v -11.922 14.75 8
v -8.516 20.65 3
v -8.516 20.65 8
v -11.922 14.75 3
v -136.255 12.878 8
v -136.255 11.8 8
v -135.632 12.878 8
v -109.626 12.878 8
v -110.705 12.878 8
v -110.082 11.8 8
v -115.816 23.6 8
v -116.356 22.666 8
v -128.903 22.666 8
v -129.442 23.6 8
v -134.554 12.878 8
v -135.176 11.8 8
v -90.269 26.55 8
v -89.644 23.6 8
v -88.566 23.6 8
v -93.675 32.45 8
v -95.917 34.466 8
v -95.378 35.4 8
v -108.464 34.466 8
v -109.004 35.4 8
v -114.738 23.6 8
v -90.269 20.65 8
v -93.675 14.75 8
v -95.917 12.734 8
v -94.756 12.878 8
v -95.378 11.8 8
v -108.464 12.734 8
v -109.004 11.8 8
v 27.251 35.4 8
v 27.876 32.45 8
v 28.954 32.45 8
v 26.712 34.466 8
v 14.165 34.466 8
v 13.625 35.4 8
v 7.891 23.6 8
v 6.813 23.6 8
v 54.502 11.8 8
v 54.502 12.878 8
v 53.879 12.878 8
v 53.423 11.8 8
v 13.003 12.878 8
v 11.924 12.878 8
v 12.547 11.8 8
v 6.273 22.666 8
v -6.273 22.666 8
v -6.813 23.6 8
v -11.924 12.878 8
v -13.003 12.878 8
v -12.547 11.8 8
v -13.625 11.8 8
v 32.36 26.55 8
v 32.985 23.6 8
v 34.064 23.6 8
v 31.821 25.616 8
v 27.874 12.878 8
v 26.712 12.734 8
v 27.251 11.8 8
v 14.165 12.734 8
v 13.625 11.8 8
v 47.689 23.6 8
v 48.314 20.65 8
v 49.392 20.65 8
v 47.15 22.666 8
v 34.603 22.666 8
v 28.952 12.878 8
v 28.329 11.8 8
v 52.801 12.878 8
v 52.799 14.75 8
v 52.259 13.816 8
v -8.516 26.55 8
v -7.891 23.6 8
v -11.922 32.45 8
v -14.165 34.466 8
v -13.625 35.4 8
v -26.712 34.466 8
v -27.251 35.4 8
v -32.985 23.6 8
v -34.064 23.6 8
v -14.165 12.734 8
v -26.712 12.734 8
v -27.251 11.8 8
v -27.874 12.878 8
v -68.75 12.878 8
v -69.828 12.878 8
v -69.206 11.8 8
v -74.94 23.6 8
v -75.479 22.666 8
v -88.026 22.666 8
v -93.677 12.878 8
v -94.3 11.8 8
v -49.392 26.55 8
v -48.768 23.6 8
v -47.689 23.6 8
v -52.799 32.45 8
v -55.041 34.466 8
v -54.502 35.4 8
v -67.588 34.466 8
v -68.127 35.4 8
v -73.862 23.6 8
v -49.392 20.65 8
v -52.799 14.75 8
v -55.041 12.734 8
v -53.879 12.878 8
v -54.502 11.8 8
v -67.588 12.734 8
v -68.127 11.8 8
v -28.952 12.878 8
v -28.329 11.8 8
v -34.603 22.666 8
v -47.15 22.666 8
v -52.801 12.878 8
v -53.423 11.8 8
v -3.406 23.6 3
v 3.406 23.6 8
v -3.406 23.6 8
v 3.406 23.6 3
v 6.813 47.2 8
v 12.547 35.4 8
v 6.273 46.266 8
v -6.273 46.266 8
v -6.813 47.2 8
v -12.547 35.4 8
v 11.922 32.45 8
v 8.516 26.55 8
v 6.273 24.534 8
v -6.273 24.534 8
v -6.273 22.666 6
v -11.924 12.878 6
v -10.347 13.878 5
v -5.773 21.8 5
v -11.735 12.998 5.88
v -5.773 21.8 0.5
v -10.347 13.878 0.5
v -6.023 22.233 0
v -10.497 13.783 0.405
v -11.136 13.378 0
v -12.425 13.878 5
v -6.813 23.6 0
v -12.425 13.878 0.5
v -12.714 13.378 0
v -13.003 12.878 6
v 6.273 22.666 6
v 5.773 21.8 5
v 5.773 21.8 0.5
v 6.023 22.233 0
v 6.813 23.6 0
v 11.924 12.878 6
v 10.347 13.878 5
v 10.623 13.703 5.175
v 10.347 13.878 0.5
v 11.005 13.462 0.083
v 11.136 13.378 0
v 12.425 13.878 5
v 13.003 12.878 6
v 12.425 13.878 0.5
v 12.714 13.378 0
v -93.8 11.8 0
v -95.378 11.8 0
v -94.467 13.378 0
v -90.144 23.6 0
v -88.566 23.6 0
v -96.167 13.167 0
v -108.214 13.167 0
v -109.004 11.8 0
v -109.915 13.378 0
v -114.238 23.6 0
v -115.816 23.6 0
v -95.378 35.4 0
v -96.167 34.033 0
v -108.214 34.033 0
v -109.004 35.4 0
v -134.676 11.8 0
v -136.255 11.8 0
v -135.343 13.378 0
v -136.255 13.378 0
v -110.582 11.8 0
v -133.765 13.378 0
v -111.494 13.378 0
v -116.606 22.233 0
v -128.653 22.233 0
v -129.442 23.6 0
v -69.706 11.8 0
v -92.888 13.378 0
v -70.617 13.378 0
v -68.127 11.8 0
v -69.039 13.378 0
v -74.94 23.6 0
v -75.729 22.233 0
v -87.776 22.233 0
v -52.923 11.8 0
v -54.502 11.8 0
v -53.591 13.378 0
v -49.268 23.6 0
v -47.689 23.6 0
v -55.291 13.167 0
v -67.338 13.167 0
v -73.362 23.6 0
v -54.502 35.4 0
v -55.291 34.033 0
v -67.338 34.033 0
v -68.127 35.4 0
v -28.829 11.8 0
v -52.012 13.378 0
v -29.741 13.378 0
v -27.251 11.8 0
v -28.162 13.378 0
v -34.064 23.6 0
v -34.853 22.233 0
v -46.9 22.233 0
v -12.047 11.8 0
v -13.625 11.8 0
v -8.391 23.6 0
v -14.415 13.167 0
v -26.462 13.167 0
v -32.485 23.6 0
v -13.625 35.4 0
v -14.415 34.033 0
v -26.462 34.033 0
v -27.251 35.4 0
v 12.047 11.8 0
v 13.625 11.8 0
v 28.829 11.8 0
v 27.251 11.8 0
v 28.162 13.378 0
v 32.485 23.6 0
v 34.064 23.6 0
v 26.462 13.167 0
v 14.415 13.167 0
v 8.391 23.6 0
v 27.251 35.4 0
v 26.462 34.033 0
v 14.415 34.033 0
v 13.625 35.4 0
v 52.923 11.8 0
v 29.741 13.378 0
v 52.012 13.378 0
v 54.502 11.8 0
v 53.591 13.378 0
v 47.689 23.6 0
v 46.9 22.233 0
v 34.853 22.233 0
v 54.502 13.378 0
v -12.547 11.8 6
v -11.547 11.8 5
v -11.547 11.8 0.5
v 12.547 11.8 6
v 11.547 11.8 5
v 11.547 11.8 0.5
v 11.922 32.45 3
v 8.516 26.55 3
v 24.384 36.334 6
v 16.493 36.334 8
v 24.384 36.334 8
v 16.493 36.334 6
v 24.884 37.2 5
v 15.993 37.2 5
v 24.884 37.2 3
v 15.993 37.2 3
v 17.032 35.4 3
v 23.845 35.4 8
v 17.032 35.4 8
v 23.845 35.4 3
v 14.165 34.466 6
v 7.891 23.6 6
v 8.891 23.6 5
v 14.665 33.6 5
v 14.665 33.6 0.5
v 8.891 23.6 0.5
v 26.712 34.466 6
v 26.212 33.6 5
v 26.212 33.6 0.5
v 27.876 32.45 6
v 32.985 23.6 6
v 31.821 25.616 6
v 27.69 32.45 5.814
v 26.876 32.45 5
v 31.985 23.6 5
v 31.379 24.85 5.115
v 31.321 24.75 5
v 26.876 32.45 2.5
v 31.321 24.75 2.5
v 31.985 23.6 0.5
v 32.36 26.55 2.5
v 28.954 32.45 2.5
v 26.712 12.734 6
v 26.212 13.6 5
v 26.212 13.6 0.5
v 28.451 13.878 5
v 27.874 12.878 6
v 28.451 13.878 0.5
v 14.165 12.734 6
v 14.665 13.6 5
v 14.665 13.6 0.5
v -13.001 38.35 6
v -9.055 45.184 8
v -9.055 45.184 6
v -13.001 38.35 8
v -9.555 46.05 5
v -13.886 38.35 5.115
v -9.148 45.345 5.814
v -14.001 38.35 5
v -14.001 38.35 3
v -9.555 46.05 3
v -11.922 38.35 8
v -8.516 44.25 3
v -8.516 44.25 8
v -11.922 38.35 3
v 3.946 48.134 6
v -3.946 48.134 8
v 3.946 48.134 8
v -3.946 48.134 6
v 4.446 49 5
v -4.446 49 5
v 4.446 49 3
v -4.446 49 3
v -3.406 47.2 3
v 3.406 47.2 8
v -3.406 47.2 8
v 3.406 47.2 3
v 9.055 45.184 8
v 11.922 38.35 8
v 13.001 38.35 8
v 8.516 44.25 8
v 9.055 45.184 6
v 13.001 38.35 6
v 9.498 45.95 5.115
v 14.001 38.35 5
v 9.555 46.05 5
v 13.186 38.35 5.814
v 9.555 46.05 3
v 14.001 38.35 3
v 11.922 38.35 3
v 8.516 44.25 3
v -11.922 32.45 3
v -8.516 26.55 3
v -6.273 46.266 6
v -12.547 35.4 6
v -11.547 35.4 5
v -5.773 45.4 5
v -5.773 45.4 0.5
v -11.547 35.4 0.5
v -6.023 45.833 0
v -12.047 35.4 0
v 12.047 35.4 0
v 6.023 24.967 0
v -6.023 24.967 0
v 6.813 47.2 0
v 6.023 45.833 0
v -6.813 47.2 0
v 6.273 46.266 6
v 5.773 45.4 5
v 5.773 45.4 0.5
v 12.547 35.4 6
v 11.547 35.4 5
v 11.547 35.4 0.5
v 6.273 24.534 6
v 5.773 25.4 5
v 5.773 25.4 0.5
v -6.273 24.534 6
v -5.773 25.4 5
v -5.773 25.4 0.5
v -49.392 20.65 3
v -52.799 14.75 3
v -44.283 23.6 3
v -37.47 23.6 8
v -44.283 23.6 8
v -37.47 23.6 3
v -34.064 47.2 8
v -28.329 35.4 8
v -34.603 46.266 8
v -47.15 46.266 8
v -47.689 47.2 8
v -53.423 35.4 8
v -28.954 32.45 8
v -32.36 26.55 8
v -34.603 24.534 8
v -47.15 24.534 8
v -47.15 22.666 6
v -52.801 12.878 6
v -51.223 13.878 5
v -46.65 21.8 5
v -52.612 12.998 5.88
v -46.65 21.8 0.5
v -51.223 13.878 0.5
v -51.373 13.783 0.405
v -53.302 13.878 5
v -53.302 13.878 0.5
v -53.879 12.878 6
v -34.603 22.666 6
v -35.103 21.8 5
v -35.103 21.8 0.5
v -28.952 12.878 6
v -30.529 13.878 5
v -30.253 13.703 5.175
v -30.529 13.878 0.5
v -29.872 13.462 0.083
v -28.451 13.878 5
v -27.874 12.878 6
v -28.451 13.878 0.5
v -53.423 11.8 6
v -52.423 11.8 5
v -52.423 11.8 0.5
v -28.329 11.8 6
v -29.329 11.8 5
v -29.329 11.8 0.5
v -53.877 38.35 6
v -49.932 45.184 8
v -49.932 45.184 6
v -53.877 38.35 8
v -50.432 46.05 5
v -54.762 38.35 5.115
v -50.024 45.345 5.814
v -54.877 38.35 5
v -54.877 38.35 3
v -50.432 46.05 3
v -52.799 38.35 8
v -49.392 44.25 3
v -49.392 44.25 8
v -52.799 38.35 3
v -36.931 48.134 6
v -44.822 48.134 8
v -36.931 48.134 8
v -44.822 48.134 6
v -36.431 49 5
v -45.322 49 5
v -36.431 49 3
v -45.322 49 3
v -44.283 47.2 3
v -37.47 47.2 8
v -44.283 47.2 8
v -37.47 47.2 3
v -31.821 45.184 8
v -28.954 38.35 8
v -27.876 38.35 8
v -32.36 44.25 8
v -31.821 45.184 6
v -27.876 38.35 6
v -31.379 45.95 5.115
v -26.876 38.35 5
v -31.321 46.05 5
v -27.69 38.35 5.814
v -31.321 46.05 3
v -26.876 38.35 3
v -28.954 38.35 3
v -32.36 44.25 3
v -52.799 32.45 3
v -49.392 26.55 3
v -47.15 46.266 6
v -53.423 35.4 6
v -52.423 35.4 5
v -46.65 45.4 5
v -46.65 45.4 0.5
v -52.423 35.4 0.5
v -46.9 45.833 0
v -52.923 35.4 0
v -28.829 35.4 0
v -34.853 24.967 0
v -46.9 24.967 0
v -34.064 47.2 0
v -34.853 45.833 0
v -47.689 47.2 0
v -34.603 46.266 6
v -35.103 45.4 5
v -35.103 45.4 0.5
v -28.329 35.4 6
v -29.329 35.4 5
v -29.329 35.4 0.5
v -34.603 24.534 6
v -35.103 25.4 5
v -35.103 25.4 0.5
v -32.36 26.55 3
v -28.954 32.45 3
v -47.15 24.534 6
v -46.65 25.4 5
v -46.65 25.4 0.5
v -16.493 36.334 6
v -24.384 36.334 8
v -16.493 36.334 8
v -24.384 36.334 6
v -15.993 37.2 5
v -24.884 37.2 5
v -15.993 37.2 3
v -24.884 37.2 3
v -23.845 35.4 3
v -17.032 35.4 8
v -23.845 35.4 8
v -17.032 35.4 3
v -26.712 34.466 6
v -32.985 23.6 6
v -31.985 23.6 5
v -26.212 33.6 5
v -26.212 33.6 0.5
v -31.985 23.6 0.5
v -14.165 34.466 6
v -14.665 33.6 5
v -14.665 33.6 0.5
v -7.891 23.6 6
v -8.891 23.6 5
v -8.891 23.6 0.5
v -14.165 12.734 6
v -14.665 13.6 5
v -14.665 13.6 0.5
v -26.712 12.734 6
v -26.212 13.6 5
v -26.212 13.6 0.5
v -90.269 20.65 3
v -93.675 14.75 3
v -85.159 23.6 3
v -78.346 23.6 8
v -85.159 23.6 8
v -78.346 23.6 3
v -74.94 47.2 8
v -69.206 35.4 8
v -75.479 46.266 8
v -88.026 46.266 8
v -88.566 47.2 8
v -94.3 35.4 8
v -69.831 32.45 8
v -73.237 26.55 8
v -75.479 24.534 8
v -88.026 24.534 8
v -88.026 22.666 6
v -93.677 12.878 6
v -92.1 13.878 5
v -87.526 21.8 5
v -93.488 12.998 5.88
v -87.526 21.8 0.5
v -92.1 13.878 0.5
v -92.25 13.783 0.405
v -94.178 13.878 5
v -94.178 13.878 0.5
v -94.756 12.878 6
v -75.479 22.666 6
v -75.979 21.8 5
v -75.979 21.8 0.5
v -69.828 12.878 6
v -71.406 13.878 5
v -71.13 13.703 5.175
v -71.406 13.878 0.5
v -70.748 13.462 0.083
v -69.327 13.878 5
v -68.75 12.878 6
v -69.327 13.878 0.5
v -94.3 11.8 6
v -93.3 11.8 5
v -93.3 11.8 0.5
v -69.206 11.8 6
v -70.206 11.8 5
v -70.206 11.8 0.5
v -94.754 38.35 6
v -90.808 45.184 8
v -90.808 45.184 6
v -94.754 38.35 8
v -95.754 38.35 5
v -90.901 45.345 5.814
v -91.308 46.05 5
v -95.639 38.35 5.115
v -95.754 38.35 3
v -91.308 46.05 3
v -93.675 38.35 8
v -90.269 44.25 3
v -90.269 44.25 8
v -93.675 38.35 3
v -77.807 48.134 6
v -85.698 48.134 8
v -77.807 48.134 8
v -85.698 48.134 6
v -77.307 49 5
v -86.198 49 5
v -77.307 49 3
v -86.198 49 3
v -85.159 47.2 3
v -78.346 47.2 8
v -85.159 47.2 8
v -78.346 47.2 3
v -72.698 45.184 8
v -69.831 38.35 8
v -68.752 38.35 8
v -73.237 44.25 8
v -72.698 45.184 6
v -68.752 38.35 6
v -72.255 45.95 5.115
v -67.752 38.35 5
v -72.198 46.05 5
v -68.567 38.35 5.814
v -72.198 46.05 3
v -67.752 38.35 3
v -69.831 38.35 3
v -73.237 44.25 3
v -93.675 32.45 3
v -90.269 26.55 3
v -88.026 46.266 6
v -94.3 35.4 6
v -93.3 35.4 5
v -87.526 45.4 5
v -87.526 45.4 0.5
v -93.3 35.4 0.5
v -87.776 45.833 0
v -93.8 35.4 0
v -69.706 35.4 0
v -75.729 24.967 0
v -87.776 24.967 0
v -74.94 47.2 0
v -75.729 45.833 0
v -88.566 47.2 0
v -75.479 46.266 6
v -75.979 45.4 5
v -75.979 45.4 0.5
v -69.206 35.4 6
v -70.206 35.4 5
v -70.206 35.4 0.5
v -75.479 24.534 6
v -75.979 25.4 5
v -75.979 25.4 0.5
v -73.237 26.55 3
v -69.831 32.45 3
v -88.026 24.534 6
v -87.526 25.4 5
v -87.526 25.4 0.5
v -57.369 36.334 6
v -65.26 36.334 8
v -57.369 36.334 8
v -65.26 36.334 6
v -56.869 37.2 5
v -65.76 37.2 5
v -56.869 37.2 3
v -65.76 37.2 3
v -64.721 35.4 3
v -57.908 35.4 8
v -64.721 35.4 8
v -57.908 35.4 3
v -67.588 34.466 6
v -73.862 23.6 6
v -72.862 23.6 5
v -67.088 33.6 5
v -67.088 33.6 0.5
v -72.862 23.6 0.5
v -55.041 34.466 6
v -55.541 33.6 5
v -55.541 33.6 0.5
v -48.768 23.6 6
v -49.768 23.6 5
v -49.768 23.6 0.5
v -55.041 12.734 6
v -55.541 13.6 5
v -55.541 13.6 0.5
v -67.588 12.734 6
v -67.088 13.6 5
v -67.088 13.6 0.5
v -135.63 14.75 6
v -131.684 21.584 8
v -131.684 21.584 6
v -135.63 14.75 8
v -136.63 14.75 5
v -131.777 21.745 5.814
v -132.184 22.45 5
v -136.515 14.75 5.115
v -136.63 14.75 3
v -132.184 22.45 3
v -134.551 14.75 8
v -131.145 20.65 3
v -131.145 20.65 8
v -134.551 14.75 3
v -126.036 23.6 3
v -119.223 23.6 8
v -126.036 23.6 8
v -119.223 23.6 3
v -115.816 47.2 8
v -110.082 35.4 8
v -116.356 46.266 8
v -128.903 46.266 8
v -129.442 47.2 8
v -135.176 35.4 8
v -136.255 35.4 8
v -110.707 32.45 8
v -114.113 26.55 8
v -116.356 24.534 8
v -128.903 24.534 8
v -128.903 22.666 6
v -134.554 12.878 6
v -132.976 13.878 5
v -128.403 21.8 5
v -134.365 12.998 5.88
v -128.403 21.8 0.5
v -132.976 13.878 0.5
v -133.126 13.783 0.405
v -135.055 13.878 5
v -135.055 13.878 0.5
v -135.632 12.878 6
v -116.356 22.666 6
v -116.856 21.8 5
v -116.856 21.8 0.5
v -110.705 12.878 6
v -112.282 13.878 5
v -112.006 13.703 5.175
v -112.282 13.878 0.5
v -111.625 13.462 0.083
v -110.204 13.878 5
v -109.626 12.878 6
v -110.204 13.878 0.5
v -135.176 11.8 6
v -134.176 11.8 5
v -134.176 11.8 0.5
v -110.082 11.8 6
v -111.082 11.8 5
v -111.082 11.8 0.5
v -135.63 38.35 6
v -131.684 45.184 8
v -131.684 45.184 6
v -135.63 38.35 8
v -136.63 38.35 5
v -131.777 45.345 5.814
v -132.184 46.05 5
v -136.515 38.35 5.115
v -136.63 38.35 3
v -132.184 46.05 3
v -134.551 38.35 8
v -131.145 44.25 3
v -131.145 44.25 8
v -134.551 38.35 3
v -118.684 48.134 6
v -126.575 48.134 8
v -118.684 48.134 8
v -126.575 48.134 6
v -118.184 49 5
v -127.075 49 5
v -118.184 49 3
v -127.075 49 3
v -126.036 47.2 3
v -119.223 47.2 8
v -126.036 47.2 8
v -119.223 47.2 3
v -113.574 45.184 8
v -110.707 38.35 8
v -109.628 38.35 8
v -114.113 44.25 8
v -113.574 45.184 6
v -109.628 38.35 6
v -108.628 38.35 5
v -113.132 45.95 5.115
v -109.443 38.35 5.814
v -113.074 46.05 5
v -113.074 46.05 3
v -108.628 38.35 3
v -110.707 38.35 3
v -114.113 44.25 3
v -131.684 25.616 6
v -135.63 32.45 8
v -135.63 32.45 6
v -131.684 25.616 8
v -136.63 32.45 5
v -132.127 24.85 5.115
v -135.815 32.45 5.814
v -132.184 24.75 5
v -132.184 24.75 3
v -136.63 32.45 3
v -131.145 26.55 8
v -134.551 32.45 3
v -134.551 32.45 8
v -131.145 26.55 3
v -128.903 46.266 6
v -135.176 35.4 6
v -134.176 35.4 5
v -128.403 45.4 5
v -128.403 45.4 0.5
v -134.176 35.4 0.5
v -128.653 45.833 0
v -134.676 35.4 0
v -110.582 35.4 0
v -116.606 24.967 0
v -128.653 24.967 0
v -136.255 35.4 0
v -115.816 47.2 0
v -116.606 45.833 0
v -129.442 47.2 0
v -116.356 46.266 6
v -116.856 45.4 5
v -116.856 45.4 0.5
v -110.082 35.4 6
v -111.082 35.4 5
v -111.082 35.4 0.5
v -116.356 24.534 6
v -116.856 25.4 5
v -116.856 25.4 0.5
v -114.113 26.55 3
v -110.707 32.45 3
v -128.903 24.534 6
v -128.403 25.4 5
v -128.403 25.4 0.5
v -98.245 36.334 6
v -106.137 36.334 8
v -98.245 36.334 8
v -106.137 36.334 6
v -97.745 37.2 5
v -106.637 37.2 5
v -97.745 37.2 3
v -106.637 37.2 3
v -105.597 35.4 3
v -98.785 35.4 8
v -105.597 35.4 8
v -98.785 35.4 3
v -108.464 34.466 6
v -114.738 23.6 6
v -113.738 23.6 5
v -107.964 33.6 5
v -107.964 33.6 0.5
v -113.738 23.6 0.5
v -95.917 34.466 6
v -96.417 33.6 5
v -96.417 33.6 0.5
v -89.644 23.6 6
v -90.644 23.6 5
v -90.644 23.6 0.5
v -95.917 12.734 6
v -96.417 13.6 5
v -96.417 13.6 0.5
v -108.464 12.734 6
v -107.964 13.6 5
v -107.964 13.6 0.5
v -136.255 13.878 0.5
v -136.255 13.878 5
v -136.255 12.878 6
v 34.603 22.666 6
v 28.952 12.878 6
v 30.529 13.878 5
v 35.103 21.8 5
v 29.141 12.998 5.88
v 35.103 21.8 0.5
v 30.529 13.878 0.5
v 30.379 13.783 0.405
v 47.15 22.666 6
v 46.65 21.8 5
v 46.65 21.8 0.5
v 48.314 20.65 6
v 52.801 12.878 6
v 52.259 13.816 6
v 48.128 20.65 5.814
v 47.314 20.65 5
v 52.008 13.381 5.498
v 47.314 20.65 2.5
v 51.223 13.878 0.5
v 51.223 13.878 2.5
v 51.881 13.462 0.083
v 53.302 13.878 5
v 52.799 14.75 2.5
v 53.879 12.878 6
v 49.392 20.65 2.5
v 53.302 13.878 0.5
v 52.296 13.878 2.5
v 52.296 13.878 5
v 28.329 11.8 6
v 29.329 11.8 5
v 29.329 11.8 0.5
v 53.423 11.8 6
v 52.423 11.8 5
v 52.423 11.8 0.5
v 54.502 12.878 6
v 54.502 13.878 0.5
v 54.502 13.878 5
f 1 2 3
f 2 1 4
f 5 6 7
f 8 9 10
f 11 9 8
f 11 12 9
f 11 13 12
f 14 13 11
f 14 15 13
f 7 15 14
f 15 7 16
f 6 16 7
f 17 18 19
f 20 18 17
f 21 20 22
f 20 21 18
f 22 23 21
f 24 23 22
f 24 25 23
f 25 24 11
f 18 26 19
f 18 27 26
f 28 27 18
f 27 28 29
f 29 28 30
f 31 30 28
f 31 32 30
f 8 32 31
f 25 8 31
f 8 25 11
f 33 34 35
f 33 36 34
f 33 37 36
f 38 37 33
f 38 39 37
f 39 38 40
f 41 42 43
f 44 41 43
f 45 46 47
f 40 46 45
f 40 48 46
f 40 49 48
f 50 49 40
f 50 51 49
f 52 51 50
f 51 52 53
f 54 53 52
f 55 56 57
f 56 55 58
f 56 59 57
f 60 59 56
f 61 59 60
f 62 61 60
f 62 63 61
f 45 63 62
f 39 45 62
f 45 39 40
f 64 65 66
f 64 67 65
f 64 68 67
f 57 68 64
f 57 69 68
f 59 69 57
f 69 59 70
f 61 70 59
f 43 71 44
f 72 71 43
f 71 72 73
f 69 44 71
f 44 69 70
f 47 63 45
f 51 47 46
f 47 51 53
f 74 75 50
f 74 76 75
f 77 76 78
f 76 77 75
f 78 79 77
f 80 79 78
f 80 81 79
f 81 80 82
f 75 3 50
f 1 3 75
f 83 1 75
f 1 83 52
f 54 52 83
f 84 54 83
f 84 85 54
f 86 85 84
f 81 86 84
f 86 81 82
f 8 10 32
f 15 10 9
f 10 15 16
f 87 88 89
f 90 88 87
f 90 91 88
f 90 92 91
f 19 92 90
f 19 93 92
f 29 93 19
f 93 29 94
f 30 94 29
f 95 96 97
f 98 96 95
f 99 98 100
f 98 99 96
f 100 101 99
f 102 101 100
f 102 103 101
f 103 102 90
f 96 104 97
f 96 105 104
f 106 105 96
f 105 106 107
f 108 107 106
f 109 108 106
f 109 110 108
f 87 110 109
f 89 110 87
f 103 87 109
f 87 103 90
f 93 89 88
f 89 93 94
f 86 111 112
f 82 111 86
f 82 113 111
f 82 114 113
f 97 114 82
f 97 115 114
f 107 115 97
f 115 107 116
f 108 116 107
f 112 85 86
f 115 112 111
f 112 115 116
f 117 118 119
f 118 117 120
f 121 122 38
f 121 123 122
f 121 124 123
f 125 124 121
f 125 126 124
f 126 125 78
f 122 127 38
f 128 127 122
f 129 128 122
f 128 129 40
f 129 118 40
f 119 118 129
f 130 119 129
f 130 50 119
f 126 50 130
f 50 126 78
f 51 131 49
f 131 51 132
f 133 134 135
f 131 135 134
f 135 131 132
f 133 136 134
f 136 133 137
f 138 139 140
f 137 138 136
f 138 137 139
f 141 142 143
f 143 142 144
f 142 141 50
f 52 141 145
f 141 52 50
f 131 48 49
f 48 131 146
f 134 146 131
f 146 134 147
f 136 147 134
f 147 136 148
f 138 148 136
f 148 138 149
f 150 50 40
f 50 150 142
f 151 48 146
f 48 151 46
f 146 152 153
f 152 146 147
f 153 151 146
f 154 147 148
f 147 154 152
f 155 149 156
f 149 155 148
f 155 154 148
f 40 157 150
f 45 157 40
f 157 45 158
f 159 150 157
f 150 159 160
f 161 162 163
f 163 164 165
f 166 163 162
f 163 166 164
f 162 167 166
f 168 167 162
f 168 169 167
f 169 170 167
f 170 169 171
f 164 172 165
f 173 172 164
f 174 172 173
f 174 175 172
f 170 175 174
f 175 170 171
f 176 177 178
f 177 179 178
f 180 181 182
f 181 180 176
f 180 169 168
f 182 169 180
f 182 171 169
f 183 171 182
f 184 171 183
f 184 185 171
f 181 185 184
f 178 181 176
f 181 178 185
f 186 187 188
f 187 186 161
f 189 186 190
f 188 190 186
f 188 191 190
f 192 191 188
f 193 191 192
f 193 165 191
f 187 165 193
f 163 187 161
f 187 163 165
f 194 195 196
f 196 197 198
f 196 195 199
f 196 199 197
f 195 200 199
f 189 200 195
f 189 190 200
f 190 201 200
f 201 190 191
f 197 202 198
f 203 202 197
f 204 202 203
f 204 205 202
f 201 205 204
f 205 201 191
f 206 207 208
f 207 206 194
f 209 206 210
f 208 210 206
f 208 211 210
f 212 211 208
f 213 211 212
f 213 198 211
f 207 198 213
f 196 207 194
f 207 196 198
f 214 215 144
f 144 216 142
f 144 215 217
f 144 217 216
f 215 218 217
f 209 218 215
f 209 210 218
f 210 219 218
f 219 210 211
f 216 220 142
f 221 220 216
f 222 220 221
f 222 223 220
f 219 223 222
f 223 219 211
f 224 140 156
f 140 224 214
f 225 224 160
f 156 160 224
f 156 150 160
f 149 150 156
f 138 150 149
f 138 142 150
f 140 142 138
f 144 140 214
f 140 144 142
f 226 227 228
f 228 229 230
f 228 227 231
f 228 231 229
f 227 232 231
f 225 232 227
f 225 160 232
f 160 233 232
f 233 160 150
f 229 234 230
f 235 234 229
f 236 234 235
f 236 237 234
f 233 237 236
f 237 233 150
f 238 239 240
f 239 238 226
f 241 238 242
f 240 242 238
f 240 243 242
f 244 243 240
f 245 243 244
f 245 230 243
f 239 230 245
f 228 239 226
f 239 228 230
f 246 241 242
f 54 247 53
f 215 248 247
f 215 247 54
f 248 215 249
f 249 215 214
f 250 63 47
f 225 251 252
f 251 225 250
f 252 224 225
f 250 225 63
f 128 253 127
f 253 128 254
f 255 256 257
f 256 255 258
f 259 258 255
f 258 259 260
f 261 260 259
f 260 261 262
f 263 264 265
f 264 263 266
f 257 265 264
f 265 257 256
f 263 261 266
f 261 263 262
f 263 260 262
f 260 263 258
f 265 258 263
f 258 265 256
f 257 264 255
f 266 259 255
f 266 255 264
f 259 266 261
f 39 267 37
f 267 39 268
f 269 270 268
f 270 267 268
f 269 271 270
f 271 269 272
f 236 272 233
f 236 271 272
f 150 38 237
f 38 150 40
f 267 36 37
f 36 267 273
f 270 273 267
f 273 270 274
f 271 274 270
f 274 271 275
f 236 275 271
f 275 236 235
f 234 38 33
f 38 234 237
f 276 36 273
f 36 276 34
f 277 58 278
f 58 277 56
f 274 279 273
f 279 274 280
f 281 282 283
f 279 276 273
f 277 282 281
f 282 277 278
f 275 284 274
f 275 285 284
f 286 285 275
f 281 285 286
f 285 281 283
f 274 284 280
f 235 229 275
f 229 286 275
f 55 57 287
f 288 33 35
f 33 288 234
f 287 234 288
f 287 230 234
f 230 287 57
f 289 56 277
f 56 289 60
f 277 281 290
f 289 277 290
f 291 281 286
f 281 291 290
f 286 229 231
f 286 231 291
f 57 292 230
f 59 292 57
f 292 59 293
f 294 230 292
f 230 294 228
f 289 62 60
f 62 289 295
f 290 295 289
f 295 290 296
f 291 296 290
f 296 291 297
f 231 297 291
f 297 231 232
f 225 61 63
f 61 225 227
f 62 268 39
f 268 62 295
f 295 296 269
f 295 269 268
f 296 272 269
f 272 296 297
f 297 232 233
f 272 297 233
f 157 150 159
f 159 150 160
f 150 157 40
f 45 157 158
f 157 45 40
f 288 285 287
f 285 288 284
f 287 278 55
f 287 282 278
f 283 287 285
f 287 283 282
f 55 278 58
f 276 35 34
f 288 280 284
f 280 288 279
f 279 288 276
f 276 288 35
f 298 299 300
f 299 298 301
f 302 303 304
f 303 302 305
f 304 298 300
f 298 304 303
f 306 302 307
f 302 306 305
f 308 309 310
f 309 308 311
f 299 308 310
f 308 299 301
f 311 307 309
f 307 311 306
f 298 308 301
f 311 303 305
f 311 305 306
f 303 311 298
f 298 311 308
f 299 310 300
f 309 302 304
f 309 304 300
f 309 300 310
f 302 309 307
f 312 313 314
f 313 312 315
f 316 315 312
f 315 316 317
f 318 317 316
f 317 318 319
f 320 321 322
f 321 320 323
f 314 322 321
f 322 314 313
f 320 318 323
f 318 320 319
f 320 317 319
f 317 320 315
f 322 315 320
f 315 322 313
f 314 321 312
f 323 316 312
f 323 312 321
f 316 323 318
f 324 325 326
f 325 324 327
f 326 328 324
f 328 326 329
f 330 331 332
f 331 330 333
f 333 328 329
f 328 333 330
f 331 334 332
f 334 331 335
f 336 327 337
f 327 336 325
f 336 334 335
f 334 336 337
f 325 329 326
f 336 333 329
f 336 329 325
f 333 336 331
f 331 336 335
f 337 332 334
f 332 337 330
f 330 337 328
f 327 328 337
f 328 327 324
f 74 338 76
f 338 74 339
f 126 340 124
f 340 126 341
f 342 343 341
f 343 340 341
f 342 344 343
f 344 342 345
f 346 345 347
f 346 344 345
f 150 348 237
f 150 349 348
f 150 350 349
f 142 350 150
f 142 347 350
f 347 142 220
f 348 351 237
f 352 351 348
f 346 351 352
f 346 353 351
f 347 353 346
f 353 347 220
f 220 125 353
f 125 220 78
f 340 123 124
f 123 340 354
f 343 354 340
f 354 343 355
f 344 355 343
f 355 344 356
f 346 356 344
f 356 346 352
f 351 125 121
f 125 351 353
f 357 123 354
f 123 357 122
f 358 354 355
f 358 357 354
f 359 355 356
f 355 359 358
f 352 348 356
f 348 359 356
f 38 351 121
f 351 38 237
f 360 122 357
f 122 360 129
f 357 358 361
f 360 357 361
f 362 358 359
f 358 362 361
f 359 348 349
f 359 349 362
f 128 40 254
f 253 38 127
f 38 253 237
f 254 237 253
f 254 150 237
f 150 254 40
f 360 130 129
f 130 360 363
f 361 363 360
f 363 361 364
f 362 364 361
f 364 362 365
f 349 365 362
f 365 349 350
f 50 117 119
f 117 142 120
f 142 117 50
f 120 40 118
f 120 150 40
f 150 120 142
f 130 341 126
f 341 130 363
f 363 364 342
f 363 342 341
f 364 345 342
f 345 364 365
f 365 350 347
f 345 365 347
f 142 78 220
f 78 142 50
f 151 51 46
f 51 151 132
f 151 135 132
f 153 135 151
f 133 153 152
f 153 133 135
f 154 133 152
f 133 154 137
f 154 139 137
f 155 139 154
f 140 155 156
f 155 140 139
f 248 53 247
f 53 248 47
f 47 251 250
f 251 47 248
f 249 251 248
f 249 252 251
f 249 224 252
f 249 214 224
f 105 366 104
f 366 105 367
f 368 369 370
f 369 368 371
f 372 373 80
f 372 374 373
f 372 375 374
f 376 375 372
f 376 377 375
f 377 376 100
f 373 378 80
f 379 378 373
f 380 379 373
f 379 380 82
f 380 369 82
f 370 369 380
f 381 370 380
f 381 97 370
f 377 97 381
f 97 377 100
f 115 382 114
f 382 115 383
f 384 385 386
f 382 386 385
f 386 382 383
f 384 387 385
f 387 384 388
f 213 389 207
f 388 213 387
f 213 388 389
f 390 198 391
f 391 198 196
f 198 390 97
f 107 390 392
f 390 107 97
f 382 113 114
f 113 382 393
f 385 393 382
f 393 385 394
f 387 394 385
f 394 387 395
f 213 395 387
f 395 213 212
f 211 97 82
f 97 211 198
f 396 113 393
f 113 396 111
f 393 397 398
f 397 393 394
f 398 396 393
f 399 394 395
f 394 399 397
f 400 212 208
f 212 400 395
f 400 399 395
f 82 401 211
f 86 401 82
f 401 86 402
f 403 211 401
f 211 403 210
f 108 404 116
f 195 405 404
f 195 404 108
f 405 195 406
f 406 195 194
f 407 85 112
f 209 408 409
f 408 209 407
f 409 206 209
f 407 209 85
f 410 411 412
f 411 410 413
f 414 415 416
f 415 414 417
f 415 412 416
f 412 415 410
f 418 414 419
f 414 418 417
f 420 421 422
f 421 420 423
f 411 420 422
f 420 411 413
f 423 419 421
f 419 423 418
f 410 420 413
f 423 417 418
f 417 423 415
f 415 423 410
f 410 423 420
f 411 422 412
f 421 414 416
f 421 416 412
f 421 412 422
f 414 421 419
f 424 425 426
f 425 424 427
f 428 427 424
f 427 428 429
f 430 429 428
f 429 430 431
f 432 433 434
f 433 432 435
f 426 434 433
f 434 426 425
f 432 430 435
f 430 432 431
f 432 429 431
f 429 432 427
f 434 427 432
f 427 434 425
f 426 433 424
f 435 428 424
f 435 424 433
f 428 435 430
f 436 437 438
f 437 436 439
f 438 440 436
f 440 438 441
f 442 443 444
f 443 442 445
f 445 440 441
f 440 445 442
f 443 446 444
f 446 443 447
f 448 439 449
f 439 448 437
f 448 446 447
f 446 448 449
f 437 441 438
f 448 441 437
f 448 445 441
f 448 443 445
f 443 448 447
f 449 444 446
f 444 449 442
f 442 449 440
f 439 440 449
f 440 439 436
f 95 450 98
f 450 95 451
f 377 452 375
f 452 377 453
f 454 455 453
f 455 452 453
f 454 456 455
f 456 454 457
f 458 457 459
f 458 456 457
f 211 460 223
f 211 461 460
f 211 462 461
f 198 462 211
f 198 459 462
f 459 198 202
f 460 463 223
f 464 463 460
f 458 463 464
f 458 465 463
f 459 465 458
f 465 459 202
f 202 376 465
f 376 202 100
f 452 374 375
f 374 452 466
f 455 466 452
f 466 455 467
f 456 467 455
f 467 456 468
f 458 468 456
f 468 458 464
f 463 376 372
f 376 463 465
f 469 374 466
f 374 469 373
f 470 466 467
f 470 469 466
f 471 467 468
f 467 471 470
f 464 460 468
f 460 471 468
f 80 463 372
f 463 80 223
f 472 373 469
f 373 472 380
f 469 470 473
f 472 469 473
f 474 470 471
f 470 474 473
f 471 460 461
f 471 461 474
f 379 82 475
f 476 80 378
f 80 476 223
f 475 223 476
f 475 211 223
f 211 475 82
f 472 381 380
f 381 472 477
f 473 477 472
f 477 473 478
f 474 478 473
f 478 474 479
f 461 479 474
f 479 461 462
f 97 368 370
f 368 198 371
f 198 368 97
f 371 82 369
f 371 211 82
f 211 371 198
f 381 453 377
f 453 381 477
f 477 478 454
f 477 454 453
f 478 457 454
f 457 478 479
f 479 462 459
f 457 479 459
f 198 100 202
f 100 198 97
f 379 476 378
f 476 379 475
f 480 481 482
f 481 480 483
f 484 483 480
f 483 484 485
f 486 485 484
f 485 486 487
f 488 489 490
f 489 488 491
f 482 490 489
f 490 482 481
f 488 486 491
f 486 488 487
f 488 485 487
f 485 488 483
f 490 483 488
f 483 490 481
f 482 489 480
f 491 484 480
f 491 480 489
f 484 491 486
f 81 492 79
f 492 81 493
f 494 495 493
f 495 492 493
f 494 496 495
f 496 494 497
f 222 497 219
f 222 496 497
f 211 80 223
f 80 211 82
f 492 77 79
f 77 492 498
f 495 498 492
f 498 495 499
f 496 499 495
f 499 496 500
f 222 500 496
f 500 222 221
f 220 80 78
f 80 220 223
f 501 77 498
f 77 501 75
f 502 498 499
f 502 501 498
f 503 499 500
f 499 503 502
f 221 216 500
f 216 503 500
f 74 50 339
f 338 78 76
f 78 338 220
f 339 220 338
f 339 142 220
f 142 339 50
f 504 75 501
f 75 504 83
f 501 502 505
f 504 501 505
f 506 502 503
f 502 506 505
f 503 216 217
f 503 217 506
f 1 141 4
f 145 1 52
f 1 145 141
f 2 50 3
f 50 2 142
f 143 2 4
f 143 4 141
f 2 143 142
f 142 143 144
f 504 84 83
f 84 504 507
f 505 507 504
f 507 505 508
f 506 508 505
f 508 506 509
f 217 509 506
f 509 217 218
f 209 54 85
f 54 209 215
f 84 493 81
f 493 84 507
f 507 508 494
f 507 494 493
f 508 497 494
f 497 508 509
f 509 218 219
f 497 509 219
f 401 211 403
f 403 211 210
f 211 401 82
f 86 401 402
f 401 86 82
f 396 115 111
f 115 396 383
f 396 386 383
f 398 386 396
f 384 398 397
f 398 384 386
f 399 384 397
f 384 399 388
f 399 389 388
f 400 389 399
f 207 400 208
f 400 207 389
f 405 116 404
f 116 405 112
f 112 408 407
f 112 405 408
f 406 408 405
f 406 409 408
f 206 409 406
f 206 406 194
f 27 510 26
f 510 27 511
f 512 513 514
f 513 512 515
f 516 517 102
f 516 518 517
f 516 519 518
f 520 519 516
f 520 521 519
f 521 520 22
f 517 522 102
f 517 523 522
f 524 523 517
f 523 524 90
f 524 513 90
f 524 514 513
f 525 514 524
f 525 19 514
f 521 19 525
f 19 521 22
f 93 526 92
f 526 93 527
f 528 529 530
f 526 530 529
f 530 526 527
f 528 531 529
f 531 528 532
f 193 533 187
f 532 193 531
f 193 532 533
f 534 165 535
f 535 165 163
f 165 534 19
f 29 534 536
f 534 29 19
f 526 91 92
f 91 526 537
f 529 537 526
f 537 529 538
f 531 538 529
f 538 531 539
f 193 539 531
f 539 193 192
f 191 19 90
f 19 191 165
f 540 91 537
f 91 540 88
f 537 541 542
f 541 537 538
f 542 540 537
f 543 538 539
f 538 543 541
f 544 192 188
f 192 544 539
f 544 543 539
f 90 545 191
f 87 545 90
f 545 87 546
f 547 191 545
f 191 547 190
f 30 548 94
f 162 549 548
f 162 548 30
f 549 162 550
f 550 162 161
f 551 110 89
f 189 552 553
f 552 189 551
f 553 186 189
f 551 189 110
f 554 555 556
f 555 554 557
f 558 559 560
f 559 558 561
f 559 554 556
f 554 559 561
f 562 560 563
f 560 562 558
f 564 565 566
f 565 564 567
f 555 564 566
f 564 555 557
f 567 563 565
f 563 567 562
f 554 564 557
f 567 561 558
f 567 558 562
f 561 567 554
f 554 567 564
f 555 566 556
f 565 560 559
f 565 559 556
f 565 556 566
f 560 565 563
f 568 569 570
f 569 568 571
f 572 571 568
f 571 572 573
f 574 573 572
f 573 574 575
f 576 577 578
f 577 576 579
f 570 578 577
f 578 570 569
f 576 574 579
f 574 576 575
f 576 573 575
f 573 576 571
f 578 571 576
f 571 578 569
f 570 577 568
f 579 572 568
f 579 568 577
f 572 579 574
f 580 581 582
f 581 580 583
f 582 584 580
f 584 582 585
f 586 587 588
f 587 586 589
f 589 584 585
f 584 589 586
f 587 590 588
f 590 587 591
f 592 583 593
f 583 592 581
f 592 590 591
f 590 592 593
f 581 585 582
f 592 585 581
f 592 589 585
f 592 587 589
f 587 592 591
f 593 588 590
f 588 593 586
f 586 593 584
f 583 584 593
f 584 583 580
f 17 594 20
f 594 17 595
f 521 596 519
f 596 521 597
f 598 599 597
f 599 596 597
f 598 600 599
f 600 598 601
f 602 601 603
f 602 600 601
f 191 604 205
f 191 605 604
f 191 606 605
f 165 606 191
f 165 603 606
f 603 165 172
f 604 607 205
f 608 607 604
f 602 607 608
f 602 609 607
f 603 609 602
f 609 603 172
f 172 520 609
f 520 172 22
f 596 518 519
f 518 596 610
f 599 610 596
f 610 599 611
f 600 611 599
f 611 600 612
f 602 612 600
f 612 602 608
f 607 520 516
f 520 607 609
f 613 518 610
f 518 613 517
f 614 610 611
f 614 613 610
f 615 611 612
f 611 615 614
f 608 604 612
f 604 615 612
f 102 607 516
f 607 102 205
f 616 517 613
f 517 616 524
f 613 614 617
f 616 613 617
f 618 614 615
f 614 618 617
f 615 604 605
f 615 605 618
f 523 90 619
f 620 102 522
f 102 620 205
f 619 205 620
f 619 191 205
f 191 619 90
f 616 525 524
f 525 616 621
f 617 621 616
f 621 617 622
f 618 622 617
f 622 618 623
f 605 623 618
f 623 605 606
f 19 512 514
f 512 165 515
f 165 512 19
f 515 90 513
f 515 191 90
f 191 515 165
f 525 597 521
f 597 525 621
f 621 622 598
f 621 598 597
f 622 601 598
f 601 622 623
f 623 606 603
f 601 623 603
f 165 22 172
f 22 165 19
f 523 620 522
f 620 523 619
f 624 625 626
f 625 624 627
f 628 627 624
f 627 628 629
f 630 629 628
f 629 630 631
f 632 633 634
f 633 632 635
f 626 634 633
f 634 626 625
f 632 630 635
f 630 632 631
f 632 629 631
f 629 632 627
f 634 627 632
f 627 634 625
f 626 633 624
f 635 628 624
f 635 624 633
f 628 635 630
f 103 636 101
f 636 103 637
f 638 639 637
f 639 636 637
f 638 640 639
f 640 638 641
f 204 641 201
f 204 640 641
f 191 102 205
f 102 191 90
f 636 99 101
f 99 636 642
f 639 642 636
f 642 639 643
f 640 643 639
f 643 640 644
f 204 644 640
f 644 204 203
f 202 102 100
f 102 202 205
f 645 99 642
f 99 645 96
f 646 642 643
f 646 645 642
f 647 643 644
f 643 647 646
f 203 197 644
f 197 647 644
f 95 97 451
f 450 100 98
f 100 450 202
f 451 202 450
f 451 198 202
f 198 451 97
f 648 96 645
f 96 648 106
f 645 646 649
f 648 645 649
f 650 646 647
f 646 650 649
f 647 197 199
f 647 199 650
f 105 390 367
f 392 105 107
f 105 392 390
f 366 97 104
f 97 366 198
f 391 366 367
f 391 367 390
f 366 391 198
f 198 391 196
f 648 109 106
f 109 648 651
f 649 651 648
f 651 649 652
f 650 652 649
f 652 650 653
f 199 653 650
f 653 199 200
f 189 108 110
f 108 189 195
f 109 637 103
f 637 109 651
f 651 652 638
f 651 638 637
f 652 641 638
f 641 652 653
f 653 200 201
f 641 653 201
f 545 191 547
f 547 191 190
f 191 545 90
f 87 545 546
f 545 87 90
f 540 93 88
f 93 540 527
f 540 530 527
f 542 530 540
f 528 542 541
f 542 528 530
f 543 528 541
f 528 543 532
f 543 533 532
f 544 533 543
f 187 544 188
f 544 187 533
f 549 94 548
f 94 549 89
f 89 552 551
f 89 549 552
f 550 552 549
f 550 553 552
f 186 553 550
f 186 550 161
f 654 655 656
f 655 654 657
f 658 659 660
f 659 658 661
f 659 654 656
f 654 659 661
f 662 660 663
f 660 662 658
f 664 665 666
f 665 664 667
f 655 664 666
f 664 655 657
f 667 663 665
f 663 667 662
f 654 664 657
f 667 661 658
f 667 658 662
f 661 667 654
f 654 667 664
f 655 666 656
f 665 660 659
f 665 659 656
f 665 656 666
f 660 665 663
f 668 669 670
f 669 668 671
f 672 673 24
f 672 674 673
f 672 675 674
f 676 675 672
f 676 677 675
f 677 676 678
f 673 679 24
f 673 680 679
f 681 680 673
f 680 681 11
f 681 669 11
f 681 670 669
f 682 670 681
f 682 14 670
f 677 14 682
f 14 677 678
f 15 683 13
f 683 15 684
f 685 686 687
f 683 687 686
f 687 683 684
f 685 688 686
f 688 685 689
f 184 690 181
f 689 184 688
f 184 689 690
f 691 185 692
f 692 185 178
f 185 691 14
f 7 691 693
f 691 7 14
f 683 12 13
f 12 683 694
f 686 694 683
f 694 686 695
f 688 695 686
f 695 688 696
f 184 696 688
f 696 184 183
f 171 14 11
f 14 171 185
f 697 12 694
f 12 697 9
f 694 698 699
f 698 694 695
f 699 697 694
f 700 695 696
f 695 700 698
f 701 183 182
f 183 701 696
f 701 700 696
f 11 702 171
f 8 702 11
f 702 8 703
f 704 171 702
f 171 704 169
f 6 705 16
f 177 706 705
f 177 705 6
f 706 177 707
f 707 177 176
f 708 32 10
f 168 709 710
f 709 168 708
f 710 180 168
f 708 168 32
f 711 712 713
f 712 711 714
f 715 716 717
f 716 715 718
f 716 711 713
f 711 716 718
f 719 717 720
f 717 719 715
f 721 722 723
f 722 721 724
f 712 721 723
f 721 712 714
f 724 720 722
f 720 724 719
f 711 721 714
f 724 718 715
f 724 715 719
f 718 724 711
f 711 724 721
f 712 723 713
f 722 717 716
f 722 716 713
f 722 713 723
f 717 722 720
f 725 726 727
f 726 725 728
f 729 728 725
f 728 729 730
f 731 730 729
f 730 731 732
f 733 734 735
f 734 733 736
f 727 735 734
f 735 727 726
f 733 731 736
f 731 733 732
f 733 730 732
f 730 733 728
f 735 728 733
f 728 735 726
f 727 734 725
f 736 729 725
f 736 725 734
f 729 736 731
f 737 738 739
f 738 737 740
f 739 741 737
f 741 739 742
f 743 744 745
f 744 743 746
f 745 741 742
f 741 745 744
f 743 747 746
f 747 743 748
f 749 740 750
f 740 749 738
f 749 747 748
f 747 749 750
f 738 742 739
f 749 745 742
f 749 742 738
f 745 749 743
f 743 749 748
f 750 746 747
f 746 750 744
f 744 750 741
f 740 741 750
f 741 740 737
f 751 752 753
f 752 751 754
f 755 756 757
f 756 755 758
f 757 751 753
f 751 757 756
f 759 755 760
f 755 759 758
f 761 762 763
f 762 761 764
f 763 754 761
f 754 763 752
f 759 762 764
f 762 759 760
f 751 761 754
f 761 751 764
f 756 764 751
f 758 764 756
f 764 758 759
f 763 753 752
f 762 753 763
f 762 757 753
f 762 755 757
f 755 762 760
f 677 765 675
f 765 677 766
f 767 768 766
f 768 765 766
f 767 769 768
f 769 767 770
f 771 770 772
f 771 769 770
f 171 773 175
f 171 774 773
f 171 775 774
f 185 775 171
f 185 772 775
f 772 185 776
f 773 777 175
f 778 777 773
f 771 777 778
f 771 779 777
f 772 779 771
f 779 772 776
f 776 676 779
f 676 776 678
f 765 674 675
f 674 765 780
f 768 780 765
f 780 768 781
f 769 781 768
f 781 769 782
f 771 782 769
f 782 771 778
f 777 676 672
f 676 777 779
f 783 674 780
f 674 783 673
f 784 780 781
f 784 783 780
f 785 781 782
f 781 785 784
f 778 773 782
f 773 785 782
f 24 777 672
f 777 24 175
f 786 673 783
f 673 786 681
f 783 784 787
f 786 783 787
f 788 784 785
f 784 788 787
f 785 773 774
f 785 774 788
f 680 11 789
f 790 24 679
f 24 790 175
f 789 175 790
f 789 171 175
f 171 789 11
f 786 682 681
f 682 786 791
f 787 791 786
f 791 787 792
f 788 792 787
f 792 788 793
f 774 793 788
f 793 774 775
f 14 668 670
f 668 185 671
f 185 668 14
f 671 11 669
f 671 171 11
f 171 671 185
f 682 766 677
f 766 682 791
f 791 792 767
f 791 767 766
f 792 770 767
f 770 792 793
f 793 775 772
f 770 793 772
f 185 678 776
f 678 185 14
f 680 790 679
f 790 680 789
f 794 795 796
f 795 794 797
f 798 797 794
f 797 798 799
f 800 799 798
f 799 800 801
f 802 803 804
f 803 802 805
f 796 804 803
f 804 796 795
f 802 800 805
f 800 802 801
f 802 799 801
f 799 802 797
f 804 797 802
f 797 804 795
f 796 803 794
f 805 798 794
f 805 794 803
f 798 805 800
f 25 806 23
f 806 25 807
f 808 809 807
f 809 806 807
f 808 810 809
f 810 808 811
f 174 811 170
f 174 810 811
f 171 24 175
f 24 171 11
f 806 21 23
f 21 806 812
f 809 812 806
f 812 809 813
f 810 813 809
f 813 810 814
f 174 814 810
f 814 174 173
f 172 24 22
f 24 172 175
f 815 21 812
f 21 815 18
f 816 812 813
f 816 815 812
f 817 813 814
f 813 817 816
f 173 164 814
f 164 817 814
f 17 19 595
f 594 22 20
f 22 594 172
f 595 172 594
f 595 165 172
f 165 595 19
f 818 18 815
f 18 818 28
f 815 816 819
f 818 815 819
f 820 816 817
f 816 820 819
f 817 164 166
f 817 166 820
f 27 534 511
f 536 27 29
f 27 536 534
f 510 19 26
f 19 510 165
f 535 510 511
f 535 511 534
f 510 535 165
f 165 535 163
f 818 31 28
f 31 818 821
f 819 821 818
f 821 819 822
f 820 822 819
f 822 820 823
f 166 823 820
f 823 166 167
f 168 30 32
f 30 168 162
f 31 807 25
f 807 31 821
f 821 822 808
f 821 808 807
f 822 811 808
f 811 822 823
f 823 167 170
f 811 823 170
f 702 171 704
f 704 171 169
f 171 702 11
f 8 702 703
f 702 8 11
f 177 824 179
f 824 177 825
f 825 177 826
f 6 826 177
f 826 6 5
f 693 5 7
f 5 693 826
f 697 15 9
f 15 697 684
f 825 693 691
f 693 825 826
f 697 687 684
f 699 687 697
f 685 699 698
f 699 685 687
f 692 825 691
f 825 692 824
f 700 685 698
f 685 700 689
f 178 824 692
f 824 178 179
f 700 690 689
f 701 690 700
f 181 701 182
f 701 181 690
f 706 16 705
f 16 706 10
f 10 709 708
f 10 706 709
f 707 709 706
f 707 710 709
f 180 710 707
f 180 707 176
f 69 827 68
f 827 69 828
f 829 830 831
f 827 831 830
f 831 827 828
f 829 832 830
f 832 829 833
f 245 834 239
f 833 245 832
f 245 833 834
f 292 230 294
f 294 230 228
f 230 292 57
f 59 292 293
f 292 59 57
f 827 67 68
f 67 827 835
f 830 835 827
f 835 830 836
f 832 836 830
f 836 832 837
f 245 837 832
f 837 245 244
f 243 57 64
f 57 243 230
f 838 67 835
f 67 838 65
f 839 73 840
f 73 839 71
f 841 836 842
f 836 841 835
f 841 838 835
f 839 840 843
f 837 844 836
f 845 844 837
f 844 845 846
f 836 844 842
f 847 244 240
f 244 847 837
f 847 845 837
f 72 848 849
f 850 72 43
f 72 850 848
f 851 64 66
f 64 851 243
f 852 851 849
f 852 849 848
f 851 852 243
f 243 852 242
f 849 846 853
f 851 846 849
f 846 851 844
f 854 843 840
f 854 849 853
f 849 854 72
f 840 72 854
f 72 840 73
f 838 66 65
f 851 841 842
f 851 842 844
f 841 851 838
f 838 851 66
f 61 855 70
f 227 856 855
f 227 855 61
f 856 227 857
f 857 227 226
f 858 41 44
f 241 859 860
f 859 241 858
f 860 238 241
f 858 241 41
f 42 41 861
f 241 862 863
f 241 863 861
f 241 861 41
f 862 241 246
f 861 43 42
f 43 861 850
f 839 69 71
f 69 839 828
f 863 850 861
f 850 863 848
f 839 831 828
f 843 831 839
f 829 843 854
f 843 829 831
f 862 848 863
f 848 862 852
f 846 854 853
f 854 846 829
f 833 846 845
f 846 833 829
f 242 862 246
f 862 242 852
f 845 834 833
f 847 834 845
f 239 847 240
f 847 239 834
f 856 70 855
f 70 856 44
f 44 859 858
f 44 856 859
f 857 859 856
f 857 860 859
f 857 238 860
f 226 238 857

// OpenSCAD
// file: honeycomb_element.scad
$fn = 50;

radius = 13.6;
diameter = radius * 2;

h_inner = 10;
r_inner = h_inner * 2 / sqrt(3);

h_outer = 10 + 1.8;
r_outer = h_outer * 2 / sqrt(3);

h_thin = 10 + 1;
r_thin = h_thin * 2 / sqrt(3);

total_height = 8;

small_value = 0.1;

clips_height = 5;
clips_offset = 0.5;
clips_side_offset = 0.00;

module basic_polygon() {
  polygon(
    [
      [r_outer, total_height],
      [r_outer, 0],
      [r_inner + 0.5, 0],
      [r_inner, 0.5],
      [r_inner, total_height - 3],
      [r_inner + 1, total_height - 2],
      [r_inner + 1, total_height],
    ]
  );
}

module basic_model() {
  rotate_extrude($fn=6) {
    basic_polygon();
  }
}

module panel_with_clips(pin_1 = false, pin_2 = false, pin_3 = false, pin_4 = false, pin_5 = false, pin_6 = false, slot_1 = false, slot_2 = false, slot_3 = false, slot_4 = false, slot_5 = false, slot_6 = false) {

  difference() {
    basic_model();

    if (slot_1) {
      rotate([0, 0, 0])
        translate([0, -h_outer * 2, total_height - (clips_height + clips_offset) / 2])
          linear_extrude(height=clips_height + clips_offset, center=true)
            polygon([[clips_side_offset, h_outer / 2], [-clips_side_offset, h_outer / 2], [-r_outer / 2 - clips_side_offset, h_outer * 1.5], [r_outer / 2 + clips_side_offset, h_outer * 1.5]]);
    }

    if (slot_2) {
      rotate([0, 0, 60])
        translate([0, -h_outer * 2, total_height - (clips_height + clips_offset) / 2])
          linear_extrude(height=clips_height + clips_offset, center=true)
            polygon([[clips_side_offset, h_outer / 2], [-clips_side_offset, h_outer / 2], [-r_outer / 2 - clips_side_offset, h_outer * 1.5], [r_outer / 2 + clips_side_offset, h_outer * 1.5]]);
    }

    if (slot_3) {
      rotate([0, 0, 120])
        translate([0, -h_outer * 2, total_height - (clips_height + clips_offset) / 2])
          linear_extrude(height=clips_height + clips_offset, center=true)
            polygon([[clips_side_offset, h_outer / 2], [-clips_side_offset, h_outer / 2], [-r_outer / 2 - clips_side_offset, h_outer * 1.5], [r_outer / 2 + clips_side_offset, h_outer * 1.5]]);
    }

    if (slot_4) {
      rotate([0, 0, 180])
        translate([0, -h_outer * 2, total_height - (clips_height + clips_offset) / 2])
          linear_extrude(height=clips_height + clips_offset, center=true)
            polygon([[clips_side_offset, h_outer / 2], [-clips_side_offset, h_outer / 2], [-r_outer / 2 - clips_side_offset, h_outer * 1.5], [r_outer / 2 + clips_side_offset, h_outer * 1.5]]);
    }

    if (slot_5) {
      rotate([0, 0, 240])
        translate([0, -h_outer * 2, total_height - (clips_height + clips_offset) / 2])
          linear_extrude(height=clips_height + clips_offset, center=true)
            polygon([[clips_side_offset, h_outer / 2], [-clips_side_offset, h_outer / 2], [-r_outer / 2 - clips_side_offset, h_outer * 1.5], [r_outer / 2 + clips_side_offset, h_outer * 1.5]]);
    }

    if (slot_6) {
      rotate([0, 0, 300])
        translate([0, -h_outer * 2, total_height - (clips_height + clips_offset) / 2])
          linear_extrude(height=clips_height + clips_offset, center=true)
            polygon([[clips_side_offset, h_outer / 2], [-clips_side_offset, h_outer / 2], [-r_outer / 2 - clips_side_offset, h_outer * 1.5], [r_outer / 2 + clips_side_offset, h_outer * 1.5]]);
    }
  }

  if (pin_1) {
    intersection() {
      translate([0, -h_outer * 2, 0])
        basic_model();
      translate([0, 0, total_height - clips_height / 2]) {
        rotate([0, 0, -180])
          linear_extrude(height=clips_height, center=true)
            polygon([[0, h_outer / 2], [-r_outer / 2, h_outer * 1.5], [r_outer / 2, h_outer * 1.5]]);
      }
    }
  }

  if (pin_2) {
    intersection() {
      translate([r_outer * 1.5, -h_outer, 0])
        basic_model();
      translate([0, 0, total_height - clips_height / 2]) {
        rotate([0, 0, -120])
          linear_extrude(height=clips_height, center=true)
            polygon([[0, h_outer / 2], [-r_outer / 2, h_outer * 1.5], [r_outer / 2, h_outer * 1.5]]);
      }
    }
  }

  if (pin_3) {
    intersection() {
      translate([r_outer * 1.5, h_outer, 0])
        basic_model();
      translate([0, 0, total_height - clips_height / 2]) {
        rotate([0, 0, -60])
          linear_extrude(height=clips_height, center=true)
            polygon([[0, h_outer / 2], [-r_outer / 2, h_outer * 1.5], [r_outer / 2, h_outer * 1.5]]);
      }
    }
  }

  if (pin_4) {
    intersection() {
      translate([0, h_outer * 2, 0])
        basic_model();

      translate([0, 0, total_height - clips_height / 2]) {
        linear_extrude(height=clips_height, center=true)
          polygon([[0, h_outer / 2], [-r_outer / 2, h_outer * 1.5], [r_outer / 2, h_outer * 1.5]]);
      }
    }
  }

  if (pin_5) {
    intersection() {
      translate([-r_outer * 1.5, h_outer, 0])
        basic_model();
      translate([0, 0, total_height - clips_height / 2]) {
        rotate([0, 0, 60])
          linear_extrude(height=clips_height, center=true)
            polygon([[0, h_outer / 2], [-r_outer / 2, h_outer * 1.5], [r_outer / 2, h_outer * 1.5]]);
      }
    }
  }

  if (pin_6) {
    intersection() {
      translate([-r_outer * 1.5, -h_outer, 0])
        basic_model();

      translate([0, 0, total_height - clips_height / 2]) {
        rotate([0, 0, 120])
          linear_extrude(height=clips_height, center=true)
            polygon([[0, h_outer / 2], [-r_outer / 2, h_outer * 1.5], [r_outer / 2, h_outer * 1.5]]);
      }
    }
  }
}

// end honeycomb_element.scad
// main file
$fn = 50;


h_outer = 10+1.8;
r_outer = h_outer * 2/sqrt(3);


use <honeycomb_element.scad>;


  
module perimeter_top_item(first_item=false) {
  intersection() {
    union() {
    translate([0, h_outer, 0])
        panel_with_clips(pin_4=true, pin_5=true);  
    }
        
    translate([0, 50+h_outer, 0])
        cube([100, 100, 100], center = true);
  }
  
  translate([r_outer*1.5, 2*h_outer, 0])
     panel_with_clips(pin_4=true, pin_5=true, slot_3=first_item); 
  
  translate([-r_outer*0, 3*h_outer, 0])
     panel_with_clips(pin_4=true, pin_5=true, pin_6=true, pin_3=true); 
  
    
  translate([0, -(h_outer-r_outer)+2*h_outer, 0])
      rotate([90, 0, -90])
        linear_extrude(height = r_outer * 2, center=true)
          basic_polygon();
    
}




module perimeter_bottom() {
    perimeter_top_item(first_item=true);
    
    translate([-3*r_outer, 0, 0])
      perimeter_top_item();

    translate([-6*r_outer, 0, 0])
      perimeter_top_item();    
    
    translate([-9*r_outer, 0, 0])
      perimeter_top_item();   
   
    
    translate([3*r_outer, 0, 0]) {
       
    translate([0, -(h_outer-r_outer)+2*h_outer, 0])
      rotate([90, 0, -90])
        linear_extrude(height = r_outer * 2, center=true)
          basic_polygon(); 
        
        
          intersection() {
    union() {
    translate([0, h_outer, 0])
        panel_with_clips(slot_3=true);  
    }
        
    translate([0, 50+h_outer, 0])
        cube([100, 100, 100], center = true);
  }
    }
      //perimeter_top_item();   
   
    /*
    
    translate([-13.5*r_outer, 2*h_outer, 0])
        panel_with_clips(pin_4=true, pin_5=true);  
    */
    
}



    
perimeter_bottom();
    
